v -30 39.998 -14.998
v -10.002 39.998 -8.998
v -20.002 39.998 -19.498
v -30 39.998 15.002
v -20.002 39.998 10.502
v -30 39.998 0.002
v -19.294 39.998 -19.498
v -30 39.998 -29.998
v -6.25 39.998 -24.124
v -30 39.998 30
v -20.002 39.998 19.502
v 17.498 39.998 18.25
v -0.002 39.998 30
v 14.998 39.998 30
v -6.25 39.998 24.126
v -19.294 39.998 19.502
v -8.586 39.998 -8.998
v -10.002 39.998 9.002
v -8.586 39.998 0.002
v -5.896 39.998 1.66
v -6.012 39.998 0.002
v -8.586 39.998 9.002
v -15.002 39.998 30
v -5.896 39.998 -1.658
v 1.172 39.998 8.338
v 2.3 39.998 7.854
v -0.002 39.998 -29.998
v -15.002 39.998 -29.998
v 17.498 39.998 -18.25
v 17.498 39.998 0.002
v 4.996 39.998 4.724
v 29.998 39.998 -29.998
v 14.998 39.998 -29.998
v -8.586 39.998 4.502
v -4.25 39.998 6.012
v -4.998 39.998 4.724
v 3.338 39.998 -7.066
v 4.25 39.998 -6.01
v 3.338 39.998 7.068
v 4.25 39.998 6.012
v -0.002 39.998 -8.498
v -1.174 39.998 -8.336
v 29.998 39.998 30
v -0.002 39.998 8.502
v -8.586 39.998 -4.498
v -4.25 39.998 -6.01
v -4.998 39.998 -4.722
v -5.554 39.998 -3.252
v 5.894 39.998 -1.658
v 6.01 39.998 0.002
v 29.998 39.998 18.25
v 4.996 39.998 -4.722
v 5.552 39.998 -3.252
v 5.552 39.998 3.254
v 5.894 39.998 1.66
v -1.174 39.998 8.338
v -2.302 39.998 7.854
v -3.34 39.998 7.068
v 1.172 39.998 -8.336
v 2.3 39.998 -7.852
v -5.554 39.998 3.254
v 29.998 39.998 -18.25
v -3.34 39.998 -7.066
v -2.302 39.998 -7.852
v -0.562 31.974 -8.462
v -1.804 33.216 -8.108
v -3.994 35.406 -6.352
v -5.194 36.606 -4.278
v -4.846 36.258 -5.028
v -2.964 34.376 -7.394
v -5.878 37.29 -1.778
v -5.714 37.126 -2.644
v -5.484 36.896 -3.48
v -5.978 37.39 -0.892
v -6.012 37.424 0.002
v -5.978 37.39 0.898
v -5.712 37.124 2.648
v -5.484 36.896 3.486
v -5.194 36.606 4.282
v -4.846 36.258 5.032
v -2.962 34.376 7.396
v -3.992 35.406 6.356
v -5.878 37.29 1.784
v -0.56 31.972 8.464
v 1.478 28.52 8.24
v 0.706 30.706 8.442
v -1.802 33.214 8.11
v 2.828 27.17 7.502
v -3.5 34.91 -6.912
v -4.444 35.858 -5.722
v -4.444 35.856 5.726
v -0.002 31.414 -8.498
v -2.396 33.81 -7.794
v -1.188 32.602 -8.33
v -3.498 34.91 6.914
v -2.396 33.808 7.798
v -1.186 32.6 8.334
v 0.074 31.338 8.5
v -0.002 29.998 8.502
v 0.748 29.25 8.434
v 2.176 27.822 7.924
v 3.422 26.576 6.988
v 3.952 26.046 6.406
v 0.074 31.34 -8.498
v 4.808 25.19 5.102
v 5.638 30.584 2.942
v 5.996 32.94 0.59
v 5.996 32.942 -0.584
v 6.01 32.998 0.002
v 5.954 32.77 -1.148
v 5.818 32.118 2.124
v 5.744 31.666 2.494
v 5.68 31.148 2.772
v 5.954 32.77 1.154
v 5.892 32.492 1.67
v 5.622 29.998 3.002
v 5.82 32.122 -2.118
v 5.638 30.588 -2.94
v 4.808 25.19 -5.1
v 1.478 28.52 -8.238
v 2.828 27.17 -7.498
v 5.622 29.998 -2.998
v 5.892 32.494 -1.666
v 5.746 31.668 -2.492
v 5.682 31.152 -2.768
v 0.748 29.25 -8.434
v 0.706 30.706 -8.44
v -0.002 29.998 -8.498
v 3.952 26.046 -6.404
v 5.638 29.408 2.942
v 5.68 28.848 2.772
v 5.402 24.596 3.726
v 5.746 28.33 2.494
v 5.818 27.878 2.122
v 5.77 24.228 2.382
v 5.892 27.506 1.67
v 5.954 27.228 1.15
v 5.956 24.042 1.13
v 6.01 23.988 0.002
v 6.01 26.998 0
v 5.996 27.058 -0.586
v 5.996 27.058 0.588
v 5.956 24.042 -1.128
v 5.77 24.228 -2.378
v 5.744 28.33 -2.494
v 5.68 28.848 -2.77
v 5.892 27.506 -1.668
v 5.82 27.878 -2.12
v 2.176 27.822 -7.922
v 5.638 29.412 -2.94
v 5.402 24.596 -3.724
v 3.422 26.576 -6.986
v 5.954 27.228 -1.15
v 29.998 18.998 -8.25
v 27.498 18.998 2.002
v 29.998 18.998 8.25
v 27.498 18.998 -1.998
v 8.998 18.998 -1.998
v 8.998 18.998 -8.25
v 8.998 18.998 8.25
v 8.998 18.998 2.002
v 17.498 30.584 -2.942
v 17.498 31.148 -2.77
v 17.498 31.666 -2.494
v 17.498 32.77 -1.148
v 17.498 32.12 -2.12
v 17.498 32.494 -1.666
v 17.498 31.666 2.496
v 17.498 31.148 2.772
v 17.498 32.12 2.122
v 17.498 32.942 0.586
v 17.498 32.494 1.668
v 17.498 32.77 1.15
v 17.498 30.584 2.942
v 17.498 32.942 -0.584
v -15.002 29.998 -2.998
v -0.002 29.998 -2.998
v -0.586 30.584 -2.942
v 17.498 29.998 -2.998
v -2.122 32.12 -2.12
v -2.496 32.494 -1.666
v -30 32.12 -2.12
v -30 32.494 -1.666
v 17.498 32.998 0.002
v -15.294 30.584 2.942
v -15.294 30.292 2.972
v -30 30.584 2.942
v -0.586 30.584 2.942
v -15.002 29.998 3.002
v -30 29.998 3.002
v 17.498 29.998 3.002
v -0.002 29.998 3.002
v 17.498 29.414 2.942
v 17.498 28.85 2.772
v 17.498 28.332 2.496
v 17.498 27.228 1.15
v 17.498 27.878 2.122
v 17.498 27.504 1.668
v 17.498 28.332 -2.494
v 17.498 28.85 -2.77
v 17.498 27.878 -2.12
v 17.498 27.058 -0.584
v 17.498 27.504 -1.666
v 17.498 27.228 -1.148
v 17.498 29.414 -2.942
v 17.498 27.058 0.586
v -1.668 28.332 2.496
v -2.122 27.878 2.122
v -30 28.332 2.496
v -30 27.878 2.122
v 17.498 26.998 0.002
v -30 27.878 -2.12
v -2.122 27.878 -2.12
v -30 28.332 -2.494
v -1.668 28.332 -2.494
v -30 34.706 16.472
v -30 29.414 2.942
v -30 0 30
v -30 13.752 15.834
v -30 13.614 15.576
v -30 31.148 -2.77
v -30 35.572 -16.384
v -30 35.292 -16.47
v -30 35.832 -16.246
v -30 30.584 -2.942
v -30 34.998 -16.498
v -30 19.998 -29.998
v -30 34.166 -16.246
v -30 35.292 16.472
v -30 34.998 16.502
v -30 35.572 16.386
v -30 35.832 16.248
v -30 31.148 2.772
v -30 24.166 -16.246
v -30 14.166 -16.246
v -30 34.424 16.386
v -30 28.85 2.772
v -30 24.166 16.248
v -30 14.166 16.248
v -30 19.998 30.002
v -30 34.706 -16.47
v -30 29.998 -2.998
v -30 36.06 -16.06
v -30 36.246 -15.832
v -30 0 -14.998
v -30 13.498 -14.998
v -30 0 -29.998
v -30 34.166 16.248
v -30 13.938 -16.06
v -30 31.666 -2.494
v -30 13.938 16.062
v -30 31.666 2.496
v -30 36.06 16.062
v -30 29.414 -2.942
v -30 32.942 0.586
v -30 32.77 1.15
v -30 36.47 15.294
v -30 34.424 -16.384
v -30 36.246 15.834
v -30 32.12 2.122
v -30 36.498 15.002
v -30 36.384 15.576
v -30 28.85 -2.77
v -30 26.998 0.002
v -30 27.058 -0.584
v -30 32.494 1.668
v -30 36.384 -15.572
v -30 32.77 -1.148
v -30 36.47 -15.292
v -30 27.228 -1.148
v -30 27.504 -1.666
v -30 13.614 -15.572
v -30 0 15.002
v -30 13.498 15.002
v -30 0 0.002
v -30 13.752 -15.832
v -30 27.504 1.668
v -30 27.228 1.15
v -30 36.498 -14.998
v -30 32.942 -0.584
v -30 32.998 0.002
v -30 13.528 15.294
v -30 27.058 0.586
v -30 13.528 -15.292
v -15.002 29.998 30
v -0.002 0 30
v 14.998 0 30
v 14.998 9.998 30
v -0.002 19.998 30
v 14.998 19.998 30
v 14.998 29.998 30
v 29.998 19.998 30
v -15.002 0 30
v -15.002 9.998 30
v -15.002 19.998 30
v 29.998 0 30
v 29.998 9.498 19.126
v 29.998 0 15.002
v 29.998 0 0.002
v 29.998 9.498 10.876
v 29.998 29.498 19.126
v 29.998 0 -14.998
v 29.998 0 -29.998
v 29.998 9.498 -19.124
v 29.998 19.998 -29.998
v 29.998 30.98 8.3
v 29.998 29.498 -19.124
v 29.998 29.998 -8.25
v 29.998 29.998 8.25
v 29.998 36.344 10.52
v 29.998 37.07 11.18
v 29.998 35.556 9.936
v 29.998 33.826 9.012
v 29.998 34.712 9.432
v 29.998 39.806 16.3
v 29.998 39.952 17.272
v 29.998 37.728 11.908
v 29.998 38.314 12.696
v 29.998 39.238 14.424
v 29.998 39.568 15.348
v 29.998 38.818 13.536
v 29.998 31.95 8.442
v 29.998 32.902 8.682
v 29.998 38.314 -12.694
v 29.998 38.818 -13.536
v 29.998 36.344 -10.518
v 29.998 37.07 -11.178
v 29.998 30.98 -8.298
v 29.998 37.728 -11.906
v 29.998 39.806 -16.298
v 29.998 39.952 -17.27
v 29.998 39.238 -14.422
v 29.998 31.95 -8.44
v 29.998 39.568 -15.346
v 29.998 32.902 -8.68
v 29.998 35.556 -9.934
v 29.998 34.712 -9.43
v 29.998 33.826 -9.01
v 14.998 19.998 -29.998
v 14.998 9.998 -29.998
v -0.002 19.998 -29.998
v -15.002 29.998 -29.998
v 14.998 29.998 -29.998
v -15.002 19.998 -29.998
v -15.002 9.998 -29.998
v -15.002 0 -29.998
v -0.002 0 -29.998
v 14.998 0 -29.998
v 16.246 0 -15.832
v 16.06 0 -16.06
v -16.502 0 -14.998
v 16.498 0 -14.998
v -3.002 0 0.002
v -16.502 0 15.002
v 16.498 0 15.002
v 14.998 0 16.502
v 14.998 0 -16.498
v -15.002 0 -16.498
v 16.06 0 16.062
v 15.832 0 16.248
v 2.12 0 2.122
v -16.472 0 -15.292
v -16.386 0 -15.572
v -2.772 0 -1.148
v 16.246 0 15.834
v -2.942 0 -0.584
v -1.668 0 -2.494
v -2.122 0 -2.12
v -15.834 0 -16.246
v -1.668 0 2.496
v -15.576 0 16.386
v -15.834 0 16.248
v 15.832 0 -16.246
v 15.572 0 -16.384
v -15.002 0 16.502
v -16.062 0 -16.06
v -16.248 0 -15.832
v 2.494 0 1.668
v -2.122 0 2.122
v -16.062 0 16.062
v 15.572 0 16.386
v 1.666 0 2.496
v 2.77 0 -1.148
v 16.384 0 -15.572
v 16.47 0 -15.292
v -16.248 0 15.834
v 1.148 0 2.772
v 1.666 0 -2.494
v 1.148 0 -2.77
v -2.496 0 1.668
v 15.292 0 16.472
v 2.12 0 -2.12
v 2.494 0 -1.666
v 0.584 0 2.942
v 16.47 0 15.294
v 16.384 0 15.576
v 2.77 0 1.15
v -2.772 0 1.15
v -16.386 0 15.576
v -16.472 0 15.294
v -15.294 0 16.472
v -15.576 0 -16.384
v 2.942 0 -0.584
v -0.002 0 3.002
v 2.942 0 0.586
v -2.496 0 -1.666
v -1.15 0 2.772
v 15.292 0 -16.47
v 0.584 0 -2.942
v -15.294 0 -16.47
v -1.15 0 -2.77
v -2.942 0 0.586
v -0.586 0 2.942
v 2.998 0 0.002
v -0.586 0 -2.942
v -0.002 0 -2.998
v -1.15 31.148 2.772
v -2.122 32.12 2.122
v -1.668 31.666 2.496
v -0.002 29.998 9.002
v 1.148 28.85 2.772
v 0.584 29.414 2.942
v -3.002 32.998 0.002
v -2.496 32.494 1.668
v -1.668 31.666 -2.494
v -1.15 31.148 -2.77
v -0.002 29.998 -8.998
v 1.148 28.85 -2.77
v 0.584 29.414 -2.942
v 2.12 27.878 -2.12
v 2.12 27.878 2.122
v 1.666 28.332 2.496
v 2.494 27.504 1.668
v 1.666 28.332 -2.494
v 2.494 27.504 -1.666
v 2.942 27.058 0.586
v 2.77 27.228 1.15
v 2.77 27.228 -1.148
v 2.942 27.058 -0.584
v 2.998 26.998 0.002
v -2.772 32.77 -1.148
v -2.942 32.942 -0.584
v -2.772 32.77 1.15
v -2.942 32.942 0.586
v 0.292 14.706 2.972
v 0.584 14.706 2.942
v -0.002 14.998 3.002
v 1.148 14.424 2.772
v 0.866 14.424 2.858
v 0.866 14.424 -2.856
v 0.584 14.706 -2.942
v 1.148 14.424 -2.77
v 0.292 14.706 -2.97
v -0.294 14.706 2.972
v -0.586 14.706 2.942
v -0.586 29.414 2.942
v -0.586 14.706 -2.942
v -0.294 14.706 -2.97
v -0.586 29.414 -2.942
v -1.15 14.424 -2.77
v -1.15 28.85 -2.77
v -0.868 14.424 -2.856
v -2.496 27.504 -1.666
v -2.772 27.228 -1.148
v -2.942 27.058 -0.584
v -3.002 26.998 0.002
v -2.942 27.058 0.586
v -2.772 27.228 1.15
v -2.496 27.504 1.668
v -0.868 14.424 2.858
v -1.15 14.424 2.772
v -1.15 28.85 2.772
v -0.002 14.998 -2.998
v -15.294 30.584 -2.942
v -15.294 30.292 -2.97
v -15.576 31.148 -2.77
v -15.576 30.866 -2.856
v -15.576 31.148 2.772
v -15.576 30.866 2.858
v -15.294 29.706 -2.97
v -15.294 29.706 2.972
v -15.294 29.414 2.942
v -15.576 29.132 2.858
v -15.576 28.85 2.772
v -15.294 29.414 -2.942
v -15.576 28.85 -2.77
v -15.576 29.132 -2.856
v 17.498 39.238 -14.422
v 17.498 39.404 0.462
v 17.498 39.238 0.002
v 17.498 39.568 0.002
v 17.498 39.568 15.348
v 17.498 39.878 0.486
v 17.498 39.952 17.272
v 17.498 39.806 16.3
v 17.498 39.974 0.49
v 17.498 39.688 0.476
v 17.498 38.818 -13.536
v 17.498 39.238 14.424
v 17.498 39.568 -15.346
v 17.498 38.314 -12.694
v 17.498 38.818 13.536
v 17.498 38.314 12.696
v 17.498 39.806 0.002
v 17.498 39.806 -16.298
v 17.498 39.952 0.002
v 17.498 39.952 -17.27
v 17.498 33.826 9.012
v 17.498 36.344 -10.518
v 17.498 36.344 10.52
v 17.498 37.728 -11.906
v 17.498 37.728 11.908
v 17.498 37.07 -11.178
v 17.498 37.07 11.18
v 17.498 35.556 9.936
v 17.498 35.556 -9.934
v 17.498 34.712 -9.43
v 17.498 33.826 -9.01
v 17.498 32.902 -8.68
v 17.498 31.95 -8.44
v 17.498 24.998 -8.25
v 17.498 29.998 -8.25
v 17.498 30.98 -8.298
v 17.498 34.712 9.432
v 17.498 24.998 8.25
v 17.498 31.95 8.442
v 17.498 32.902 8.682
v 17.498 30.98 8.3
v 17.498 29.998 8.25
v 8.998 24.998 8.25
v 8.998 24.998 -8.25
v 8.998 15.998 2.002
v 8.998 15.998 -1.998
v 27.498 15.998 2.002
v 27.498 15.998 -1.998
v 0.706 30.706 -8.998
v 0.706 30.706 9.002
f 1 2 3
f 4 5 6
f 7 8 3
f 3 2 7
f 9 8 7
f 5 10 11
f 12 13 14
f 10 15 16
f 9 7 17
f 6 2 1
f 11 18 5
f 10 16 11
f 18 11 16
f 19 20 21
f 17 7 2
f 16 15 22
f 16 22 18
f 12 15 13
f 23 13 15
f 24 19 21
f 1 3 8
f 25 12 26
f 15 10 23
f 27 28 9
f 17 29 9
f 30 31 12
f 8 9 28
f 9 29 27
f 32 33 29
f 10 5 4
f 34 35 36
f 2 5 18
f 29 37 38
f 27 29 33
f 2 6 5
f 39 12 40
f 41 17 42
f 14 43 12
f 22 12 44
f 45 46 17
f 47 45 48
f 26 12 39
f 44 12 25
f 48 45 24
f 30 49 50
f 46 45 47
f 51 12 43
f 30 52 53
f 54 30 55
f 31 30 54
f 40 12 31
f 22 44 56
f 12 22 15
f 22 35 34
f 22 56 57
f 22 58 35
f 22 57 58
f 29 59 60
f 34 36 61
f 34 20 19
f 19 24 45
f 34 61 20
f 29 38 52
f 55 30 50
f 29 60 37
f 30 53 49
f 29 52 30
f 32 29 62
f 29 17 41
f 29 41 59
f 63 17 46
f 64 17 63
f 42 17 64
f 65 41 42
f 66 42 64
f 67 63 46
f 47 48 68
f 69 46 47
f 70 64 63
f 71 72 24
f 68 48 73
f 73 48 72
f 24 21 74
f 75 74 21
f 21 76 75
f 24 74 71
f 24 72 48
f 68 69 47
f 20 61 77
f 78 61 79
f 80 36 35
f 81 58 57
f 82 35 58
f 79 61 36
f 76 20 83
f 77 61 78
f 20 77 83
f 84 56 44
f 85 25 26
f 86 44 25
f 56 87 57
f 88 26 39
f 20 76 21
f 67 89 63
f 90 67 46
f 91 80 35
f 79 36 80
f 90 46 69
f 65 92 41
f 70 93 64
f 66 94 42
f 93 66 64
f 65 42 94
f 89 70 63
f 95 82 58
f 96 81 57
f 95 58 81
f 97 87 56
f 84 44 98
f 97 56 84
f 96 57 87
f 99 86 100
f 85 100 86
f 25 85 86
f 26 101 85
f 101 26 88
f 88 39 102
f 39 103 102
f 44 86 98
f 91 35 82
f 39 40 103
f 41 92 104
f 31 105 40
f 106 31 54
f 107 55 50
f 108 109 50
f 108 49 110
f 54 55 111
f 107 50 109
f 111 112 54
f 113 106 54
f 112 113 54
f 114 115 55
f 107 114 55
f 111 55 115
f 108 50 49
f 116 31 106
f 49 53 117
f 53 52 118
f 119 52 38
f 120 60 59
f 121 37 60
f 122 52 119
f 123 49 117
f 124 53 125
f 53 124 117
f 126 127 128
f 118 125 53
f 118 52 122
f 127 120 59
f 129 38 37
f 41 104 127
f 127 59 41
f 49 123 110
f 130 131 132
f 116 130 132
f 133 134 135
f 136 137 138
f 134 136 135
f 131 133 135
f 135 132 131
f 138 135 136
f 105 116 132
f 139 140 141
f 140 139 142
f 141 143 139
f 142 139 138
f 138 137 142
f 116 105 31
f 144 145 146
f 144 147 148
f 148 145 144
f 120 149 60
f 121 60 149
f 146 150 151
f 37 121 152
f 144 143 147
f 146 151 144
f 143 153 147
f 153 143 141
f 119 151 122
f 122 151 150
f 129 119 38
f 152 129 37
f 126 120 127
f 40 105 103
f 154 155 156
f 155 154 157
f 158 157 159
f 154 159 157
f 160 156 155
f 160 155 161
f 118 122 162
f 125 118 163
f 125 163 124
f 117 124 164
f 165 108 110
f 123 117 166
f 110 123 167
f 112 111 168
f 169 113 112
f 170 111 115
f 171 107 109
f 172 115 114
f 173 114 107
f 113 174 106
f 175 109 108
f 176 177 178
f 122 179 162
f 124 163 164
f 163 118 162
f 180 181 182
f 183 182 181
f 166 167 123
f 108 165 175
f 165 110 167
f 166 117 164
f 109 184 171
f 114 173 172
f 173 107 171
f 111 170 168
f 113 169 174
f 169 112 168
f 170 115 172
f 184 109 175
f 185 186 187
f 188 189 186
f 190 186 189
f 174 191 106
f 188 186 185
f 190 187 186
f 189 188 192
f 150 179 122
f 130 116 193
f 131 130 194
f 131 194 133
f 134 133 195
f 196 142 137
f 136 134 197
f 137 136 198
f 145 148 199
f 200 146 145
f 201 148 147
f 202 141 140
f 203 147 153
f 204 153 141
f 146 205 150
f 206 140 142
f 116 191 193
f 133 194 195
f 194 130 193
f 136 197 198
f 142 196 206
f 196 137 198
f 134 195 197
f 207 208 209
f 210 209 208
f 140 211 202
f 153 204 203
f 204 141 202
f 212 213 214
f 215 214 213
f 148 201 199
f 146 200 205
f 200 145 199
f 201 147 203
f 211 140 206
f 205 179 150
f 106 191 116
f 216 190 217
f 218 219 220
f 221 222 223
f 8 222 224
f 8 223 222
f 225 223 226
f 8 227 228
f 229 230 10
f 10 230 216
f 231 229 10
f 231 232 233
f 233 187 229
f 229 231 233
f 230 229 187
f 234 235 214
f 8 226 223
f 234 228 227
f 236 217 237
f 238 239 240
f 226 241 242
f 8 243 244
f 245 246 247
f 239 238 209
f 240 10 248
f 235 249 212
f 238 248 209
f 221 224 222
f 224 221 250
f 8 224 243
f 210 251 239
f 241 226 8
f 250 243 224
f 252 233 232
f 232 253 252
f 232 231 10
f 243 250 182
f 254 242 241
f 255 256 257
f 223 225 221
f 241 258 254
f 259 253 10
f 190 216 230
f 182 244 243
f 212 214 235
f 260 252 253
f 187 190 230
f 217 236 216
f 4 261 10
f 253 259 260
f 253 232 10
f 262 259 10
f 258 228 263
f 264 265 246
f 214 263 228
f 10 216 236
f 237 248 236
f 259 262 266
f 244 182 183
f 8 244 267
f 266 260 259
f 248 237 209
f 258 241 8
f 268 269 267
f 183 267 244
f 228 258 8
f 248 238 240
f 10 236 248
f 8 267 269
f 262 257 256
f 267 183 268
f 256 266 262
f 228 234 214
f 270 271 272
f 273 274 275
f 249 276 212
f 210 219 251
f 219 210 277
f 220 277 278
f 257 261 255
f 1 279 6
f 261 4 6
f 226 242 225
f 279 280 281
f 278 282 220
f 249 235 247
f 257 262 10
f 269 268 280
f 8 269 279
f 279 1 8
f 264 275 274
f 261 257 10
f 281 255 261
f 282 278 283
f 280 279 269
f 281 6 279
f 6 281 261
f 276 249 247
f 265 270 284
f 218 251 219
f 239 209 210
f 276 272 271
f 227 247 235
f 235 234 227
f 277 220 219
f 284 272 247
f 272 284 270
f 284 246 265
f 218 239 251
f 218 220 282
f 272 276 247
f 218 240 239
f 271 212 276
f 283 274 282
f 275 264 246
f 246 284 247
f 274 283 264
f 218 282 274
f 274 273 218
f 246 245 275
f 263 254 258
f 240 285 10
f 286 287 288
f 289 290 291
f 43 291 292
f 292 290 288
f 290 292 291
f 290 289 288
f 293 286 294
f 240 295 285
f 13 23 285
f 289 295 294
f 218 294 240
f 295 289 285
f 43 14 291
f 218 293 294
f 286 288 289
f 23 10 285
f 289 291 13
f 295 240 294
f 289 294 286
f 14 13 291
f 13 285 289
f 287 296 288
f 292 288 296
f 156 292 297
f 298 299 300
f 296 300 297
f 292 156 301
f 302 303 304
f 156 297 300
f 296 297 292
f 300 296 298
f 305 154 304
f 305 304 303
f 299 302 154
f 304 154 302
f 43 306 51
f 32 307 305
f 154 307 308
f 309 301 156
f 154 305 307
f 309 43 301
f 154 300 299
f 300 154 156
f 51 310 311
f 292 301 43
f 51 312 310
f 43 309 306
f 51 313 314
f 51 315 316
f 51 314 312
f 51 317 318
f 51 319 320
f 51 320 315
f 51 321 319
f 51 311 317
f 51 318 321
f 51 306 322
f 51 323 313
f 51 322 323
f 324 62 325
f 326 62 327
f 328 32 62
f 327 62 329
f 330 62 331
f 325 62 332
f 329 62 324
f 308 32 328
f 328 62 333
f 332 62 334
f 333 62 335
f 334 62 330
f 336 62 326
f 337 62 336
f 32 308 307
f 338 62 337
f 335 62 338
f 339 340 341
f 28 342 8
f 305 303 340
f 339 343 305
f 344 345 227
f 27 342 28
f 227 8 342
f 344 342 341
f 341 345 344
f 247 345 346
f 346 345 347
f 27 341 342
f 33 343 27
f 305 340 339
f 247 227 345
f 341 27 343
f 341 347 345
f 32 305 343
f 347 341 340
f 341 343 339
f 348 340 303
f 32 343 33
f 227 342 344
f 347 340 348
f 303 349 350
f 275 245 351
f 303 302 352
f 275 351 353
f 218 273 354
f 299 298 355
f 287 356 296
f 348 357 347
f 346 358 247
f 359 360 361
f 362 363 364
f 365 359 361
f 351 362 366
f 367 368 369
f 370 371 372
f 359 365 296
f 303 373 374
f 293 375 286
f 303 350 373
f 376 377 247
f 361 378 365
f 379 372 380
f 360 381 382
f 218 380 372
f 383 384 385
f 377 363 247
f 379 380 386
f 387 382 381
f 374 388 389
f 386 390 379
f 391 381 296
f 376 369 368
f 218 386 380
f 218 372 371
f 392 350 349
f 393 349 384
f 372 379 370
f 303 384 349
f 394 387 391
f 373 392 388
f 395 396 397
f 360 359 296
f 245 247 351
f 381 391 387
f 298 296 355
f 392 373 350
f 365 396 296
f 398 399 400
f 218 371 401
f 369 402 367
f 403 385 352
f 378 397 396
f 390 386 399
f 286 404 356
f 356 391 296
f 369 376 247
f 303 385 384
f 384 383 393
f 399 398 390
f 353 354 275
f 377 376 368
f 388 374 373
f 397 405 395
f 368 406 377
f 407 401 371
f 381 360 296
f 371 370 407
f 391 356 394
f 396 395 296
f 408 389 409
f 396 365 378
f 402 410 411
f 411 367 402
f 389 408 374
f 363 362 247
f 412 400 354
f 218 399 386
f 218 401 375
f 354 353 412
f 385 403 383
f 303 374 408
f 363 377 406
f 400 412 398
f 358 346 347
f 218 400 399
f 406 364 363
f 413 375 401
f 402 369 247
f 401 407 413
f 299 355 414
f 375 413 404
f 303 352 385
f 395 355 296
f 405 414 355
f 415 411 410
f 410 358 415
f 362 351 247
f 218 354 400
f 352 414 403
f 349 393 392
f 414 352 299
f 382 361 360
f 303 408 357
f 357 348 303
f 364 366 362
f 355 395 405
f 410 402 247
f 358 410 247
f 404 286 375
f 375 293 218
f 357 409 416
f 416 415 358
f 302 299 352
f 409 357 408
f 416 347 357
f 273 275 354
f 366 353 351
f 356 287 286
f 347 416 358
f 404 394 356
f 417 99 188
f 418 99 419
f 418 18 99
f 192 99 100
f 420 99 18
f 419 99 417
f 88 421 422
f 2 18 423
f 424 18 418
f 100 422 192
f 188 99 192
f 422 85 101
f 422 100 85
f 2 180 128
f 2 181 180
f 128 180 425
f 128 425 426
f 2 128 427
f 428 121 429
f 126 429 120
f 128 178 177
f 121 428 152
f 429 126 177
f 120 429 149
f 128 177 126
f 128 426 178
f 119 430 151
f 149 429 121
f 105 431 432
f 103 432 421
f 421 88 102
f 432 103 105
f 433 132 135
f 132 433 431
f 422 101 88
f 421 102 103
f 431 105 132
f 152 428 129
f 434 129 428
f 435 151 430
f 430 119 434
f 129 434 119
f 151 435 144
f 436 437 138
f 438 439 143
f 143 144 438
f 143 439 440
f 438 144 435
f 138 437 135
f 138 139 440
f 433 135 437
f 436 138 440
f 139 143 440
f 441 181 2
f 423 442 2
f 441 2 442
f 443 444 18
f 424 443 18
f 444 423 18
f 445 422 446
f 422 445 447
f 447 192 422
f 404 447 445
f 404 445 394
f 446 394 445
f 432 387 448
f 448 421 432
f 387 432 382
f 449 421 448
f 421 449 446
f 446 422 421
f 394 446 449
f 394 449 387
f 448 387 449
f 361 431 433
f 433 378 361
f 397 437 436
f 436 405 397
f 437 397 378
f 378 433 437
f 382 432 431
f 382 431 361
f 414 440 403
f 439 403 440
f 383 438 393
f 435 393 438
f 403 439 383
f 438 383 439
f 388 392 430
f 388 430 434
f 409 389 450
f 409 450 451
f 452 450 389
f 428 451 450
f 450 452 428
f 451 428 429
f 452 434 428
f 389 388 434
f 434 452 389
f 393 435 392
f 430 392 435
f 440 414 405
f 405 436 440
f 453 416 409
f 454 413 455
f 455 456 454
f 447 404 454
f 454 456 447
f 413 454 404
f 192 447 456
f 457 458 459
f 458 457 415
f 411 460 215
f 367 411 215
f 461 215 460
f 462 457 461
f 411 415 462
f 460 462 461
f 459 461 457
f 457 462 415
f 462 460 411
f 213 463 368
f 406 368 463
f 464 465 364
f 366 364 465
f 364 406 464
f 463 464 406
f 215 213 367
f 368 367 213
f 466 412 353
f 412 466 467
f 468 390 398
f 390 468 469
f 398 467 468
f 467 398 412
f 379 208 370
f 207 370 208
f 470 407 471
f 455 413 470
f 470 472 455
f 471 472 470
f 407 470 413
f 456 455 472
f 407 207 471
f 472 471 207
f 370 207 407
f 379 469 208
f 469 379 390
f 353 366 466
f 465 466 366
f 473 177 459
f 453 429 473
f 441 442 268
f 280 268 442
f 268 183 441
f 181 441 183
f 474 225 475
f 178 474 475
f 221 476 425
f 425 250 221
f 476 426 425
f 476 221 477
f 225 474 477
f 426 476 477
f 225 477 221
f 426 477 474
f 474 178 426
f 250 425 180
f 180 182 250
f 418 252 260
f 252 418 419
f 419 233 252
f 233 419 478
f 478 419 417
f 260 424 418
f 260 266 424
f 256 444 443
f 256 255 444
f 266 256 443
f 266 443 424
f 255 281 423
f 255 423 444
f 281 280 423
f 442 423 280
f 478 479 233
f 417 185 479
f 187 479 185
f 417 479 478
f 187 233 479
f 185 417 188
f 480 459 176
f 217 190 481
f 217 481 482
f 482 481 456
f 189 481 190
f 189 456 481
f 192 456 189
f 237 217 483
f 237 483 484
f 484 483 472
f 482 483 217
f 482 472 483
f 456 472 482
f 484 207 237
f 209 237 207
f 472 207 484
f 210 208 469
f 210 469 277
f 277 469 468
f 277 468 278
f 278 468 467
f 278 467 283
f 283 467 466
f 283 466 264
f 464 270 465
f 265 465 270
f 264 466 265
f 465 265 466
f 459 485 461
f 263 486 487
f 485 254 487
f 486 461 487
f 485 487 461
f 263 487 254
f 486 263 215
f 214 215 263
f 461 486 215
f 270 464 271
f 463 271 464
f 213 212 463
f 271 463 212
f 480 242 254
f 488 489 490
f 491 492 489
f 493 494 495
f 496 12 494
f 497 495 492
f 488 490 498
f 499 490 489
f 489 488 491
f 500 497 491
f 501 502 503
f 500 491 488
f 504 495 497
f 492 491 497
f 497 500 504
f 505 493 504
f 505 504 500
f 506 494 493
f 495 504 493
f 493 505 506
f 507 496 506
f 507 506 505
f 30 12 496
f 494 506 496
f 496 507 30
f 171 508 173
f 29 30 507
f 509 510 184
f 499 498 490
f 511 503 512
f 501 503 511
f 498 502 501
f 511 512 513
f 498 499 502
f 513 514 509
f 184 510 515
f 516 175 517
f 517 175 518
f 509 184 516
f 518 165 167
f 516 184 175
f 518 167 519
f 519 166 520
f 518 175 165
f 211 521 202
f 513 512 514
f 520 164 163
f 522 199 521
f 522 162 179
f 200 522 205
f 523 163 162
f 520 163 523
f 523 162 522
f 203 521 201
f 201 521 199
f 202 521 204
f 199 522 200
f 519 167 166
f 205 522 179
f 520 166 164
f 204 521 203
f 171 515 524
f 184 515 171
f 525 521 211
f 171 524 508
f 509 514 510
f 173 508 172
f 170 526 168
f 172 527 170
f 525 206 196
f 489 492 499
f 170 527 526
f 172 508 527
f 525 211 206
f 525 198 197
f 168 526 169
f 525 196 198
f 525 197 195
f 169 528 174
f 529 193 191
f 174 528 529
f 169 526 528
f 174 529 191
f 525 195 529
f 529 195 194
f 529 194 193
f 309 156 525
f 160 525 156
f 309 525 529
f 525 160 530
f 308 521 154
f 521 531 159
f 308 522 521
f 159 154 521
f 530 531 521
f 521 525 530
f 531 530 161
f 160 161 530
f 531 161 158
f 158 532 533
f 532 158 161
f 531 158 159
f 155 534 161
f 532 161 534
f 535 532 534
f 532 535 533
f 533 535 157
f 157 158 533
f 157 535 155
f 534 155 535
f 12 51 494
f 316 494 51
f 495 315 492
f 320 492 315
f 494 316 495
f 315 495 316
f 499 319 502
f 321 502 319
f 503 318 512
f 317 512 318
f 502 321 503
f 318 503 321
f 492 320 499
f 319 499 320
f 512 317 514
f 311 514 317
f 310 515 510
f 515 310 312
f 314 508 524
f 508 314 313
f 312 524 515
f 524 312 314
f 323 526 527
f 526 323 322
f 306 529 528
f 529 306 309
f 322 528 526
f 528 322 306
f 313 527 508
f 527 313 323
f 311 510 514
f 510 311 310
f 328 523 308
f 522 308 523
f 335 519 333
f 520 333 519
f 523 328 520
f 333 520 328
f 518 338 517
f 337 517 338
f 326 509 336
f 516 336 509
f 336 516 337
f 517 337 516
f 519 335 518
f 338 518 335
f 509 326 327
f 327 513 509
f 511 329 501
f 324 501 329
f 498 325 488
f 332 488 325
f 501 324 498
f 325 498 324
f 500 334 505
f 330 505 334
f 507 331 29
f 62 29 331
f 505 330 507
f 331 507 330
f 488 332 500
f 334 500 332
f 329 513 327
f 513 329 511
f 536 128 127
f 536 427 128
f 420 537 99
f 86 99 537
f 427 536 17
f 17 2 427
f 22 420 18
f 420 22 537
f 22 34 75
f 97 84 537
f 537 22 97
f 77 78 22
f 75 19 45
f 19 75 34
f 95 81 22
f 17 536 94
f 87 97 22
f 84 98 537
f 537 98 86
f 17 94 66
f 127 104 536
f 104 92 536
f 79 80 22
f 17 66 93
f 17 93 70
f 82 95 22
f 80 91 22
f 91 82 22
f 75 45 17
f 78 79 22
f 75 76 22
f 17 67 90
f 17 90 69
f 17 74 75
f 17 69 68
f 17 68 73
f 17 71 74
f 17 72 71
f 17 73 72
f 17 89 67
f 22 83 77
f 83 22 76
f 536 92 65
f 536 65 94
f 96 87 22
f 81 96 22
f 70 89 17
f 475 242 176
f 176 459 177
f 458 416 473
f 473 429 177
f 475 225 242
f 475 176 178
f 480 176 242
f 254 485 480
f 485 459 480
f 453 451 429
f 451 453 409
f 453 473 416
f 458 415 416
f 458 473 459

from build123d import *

# Parameters (mm, degrees)
SKETCH1_W               = 60
SKETCH1_H               = 60
BOSS_EXTRUDE1_DEPTH     = 10
SKETCH6_R               = 8.5
SKETCH7_RX              = 8.5
SKETCH7_RY              = 6.01040764
SKETCH8_W               = 60
SKETCH8_H               = 60
SKETCH8_RX              = 8.5
SKETCH8_RY              = 6.01040764
BOSS_EXTRUDE2_DEPTH     = 30
SKETCH9_R               = 3
CUT_EXTRUDE1_DEPTH      = 41
SKETCH10_R              = 3
CUT_EXTRUDE2_DEPTH      = 61
SKETCH11_W              = 16.5
SKETCH11_H              = 21
CUT_EXTRUDE3_DEPTH      = 12.5
SKETCH12_W              = 16.5
SKETCH12_H              = 6
CUT_EXTRUDE4_DEPTH      = 8.5
SKETCH13_W              = 4
SKETCH13_H              = 3
CUT_EXTRUDE5_DEPTH      = 18.5
FILLET1_R               = 10
SKETCH14_W              = 18
SKETCH14_H              = 1
CUT_EXTRUDE7_DEPTH      = 20
CUT_EXTRUDE7_DEPTH_BACK = 14.142136


with BuildPart() as part:
    # Sketch1 → Boss-Extrude1 (new body)
    with BuildSketch(Plane(origin=(0, 0, 0), x_dir=(1, 0, 0), z_dir=(0, 1, 0))):
        Rectangle(SKETCH1_W, SKETCH1_H)
    extrude(amount=BOSS_EXTRUDE1_DEPTH)

    # Sketch6 → Loft1 section 0
    with BuildSketch(Plane(origin=(15, 15, 0), x_dir=(0, 0, -1), z_dir=(0.707106781, 0.707106781, 0))):
        with Locations((0, 21.213203436)):
            Circle(SKETCH6_R)
    # Sketch7 → Loft1 section 1
    with BuildSketch(Plane(origin=(0, 10, 0), x_dir=(1, 0, 0), z_dir=(0, 1, 0))):
        with Locations(Location((0, 0), (0, 0, 90))):
            Ellipse(SKETCH7_RX, SKETCH7_RY)
    loft()

    # Sketch8 → Boss-Extrude2 (add)
    with BuildSketch(Plane(origin=(0, 10, 0), x_dir=(1, 0, 0), z_dir=(0, 1, 0))):
        Rectangle(SKETCH8_W, SKETCH8_H)
        with Locations(Location((0, 0), (0, 0, 90))):
            Ellipse(SKETCH8_RX, SKETCH8_RY, mode=Mode.SUBTRACT)
    extrude(amount=BOSS_EXTRUDE2_DEPTH)

    # Sketch9 → Cut-Extrude1 (cut, through all)
    with BuildSketch(Plane(origin=(0, 40, 0), x_dir=(1, 0, 0), z_dir=(0, 1, 0))):
        Circle(SKETCH9_R)
    extrude(amount=-CUT_EXTRUDE1_DEPTH, mode=Mode.SUBTRACT)

    # Sketch10 → Cut-Extrude2 (cut, through all)
    with BuildSketch(Plane(origin=(30, 0, 0), x_dir=(0, 0, -1), z_dir=(1, 0, 0))):
        with Locations((0, 30)):
            Circle(SKETCH10_R)
    extrude(amount=-CUT_EXTRUDE2_DEPTH, mode=Mode.SUBTRACT)

    # Sketch11 → Cut-Extrude3 (cut)
    with BuildSketch(Plane(origin=(30, 0, 0), x_dir=(0, 0, -1), z_dir=(1, 0, 0))):
        with Locations((0, 29.5)):
            Rectangle(SKETCH11_W, SKETCH11_H)
    extrude(amount=-CUT_EXTRUDE3_DEPTH, mode=Mode.SUBTRACT)

    # Sketch12 → Cut-Extrude4 (cut)
    with BuildSketch(Plane(origin=(17.5, 0, 0), x_dir=(0, 0, -1), z_dir=(1, 0, 0))):
        with Locations((0, 22)):
            Rectangle(SKETCH12_W, SKETCH12_H)
    extrude(amount=-CUT_EXTRUDE4_DEPTH, mode=Mode.SUBTRACT)

    # Sketch13 → Cut-Extrude5 (cut)
    with BuildSketch(Plane(origin=(9, 0, 0), x_dir=(0, 0, -1), z_dir=(1, 0, 0))):
        with Locations((0, 17.5)):
            Rectangle(SKETCH13_W, SKETCH13_H)
    extrude(amount=CUT_EXTRUDE5_DEPTH, mode=Mode.SUBTRACT)

    # Fillet1
    fillet1_edges = [part.edges().sort_by_distance(p)[0] for p in [
        (23.75, 40, 8.25),
        (23.75, 40, -8.25),
    ]]
    fillet(fillet1_edges, radius=FILLET1_R)

    # Sketch14 → Cut-Extrude7 (cut, two sides)
    with BuildSketch(Plane(origin=(-25, 25, 0), x_dir=(0, 0, 1), z_dir=(-0.707106781, 0.707106781, 0))) as cut_extrude7_sk:
        with Locations((0, 21.713203436)):
            Rectangle(SKETCH14_W, SKETCH14_H)
    extrude(amount=CUT_EXTRUDE7_DEPTH, mode=Mode.SUBTRACT)
    extrude(cut_extrude7_sk.sketch, amount=-CUT_EXTRUDE7_DEPTH_BACK, mode=Mode.SUBTRACT)


solid = part.part
